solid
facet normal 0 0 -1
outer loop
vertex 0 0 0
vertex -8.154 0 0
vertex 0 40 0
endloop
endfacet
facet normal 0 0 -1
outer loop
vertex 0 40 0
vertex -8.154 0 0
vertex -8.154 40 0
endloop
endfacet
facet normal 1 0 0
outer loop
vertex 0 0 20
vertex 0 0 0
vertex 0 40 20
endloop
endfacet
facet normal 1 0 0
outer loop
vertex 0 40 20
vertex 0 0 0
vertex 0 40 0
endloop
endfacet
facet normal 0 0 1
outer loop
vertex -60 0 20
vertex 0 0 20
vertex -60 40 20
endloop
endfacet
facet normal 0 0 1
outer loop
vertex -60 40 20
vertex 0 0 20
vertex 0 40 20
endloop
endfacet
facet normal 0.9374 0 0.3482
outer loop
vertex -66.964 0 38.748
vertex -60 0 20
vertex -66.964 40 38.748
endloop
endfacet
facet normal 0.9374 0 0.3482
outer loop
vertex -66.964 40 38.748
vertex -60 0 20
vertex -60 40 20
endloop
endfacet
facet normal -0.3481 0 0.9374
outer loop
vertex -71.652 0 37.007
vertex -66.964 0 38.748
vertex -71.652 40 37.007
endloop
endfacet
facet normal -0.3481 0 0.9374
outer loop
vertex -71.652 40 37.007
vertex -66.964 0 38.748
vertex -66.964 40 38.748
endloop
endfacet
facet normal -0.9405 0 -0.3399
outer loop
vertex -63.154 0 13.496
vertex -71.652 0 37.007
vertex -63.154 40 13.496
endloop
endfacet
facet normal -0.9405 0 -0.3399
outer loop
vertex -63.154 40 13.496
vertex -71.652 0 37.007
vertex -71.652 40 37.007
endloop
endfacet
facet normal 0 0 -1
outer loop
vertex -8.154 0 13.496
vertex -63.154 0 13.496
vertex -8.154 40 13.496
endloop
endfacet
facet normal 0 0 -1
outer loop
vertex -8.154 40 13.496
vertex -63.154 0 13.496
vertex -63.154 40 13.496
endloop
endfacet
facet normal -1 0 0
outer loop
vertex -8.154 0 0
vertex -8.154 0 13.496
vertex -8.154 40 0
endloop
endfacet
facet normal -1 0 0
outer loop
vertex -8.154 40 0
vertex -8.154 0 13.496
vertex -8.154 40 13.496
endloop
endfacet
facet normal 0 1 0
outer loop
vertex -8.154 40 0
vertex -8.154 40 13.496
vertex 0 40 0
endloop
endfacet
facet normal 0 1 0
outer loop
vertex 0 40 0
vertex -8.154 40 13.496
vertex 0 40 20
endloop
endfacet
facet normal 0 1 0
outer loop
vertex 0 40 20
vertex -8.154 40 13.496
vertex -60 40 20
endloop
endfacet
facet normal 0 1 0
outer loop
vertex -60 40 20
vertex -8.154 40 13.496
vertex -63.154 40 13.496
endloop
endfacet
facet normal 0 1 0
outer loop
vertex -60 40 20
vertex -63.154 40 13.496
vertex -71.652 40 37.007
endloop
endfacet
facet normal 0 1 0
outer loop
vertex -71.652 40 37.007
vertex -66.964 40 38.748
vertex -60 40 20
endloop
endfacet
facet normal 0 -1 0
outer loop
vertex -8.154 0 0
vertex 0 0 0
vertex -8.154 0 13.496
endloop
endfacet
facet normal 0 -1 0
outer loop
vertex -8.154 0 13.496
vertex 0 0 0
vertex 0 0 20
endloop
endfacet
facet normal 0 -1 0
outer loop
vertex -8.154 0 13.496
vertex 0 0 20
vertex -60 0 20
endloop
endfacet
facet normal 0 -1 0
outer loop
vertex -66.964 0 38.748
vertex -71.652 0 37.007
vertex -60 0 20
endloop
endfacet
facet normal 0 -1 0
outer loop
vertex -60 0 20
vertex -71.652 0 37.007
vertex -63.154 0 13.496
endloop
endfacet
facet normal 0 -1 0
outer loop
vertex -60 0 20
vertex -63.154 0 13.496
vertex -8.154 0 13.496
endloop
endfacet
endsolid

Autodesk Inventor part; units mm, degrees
ref_plane "YZ Plane" through (0, 0, 0) normal (1, 0, 0) x (0, 1, 0)
ref_plane "XZ Plane" through (0, 0, 0) normal (0, 1, 0) x (-1, 0, 0)
ref_plane "XY Plane" through (0, 0, 0) normal (0, 0, 1) x (1, 0, 0)
sketch "Sketch1" plane through (0, 0, 0) normal (0, 1, 0) x (-1, 0, 0)
  line L0 (0, 0) -> (0, 20)
  line L1 (0, 20) -> (60, 20)
  line L2 (60, 20) -> (66.9645, 38.7482)
  line L3 (66.9645, 38.7482) -> (71.6515, 37.0071)
  line L4 (71.6515, 37.0071) -> (63.1538, 13.4957)
  line L5 (63.1538, 13.4957) -> (8.1538, 13.4957)
  line L6 (8.1538, 13.4957) -> (8.1538, 0)
  line L7 (8.1538, 0) -> (0, 0)
  dimension "d0" = 20
  dimension "d1" = 60
  dimension "d2" = 20
  dimension "d3" = 5
  dimension "d4" = 25
  dimension "d5" = 55
extrude "Extrusion1" add sketch "Sketch1" along normal blind 40
sketch "Sketch2" plane through (0, 40, 0) normal (0, 1, 0) x (1, 0, 0)
  point P0 (0, 0)
properties part number "montageArm"
